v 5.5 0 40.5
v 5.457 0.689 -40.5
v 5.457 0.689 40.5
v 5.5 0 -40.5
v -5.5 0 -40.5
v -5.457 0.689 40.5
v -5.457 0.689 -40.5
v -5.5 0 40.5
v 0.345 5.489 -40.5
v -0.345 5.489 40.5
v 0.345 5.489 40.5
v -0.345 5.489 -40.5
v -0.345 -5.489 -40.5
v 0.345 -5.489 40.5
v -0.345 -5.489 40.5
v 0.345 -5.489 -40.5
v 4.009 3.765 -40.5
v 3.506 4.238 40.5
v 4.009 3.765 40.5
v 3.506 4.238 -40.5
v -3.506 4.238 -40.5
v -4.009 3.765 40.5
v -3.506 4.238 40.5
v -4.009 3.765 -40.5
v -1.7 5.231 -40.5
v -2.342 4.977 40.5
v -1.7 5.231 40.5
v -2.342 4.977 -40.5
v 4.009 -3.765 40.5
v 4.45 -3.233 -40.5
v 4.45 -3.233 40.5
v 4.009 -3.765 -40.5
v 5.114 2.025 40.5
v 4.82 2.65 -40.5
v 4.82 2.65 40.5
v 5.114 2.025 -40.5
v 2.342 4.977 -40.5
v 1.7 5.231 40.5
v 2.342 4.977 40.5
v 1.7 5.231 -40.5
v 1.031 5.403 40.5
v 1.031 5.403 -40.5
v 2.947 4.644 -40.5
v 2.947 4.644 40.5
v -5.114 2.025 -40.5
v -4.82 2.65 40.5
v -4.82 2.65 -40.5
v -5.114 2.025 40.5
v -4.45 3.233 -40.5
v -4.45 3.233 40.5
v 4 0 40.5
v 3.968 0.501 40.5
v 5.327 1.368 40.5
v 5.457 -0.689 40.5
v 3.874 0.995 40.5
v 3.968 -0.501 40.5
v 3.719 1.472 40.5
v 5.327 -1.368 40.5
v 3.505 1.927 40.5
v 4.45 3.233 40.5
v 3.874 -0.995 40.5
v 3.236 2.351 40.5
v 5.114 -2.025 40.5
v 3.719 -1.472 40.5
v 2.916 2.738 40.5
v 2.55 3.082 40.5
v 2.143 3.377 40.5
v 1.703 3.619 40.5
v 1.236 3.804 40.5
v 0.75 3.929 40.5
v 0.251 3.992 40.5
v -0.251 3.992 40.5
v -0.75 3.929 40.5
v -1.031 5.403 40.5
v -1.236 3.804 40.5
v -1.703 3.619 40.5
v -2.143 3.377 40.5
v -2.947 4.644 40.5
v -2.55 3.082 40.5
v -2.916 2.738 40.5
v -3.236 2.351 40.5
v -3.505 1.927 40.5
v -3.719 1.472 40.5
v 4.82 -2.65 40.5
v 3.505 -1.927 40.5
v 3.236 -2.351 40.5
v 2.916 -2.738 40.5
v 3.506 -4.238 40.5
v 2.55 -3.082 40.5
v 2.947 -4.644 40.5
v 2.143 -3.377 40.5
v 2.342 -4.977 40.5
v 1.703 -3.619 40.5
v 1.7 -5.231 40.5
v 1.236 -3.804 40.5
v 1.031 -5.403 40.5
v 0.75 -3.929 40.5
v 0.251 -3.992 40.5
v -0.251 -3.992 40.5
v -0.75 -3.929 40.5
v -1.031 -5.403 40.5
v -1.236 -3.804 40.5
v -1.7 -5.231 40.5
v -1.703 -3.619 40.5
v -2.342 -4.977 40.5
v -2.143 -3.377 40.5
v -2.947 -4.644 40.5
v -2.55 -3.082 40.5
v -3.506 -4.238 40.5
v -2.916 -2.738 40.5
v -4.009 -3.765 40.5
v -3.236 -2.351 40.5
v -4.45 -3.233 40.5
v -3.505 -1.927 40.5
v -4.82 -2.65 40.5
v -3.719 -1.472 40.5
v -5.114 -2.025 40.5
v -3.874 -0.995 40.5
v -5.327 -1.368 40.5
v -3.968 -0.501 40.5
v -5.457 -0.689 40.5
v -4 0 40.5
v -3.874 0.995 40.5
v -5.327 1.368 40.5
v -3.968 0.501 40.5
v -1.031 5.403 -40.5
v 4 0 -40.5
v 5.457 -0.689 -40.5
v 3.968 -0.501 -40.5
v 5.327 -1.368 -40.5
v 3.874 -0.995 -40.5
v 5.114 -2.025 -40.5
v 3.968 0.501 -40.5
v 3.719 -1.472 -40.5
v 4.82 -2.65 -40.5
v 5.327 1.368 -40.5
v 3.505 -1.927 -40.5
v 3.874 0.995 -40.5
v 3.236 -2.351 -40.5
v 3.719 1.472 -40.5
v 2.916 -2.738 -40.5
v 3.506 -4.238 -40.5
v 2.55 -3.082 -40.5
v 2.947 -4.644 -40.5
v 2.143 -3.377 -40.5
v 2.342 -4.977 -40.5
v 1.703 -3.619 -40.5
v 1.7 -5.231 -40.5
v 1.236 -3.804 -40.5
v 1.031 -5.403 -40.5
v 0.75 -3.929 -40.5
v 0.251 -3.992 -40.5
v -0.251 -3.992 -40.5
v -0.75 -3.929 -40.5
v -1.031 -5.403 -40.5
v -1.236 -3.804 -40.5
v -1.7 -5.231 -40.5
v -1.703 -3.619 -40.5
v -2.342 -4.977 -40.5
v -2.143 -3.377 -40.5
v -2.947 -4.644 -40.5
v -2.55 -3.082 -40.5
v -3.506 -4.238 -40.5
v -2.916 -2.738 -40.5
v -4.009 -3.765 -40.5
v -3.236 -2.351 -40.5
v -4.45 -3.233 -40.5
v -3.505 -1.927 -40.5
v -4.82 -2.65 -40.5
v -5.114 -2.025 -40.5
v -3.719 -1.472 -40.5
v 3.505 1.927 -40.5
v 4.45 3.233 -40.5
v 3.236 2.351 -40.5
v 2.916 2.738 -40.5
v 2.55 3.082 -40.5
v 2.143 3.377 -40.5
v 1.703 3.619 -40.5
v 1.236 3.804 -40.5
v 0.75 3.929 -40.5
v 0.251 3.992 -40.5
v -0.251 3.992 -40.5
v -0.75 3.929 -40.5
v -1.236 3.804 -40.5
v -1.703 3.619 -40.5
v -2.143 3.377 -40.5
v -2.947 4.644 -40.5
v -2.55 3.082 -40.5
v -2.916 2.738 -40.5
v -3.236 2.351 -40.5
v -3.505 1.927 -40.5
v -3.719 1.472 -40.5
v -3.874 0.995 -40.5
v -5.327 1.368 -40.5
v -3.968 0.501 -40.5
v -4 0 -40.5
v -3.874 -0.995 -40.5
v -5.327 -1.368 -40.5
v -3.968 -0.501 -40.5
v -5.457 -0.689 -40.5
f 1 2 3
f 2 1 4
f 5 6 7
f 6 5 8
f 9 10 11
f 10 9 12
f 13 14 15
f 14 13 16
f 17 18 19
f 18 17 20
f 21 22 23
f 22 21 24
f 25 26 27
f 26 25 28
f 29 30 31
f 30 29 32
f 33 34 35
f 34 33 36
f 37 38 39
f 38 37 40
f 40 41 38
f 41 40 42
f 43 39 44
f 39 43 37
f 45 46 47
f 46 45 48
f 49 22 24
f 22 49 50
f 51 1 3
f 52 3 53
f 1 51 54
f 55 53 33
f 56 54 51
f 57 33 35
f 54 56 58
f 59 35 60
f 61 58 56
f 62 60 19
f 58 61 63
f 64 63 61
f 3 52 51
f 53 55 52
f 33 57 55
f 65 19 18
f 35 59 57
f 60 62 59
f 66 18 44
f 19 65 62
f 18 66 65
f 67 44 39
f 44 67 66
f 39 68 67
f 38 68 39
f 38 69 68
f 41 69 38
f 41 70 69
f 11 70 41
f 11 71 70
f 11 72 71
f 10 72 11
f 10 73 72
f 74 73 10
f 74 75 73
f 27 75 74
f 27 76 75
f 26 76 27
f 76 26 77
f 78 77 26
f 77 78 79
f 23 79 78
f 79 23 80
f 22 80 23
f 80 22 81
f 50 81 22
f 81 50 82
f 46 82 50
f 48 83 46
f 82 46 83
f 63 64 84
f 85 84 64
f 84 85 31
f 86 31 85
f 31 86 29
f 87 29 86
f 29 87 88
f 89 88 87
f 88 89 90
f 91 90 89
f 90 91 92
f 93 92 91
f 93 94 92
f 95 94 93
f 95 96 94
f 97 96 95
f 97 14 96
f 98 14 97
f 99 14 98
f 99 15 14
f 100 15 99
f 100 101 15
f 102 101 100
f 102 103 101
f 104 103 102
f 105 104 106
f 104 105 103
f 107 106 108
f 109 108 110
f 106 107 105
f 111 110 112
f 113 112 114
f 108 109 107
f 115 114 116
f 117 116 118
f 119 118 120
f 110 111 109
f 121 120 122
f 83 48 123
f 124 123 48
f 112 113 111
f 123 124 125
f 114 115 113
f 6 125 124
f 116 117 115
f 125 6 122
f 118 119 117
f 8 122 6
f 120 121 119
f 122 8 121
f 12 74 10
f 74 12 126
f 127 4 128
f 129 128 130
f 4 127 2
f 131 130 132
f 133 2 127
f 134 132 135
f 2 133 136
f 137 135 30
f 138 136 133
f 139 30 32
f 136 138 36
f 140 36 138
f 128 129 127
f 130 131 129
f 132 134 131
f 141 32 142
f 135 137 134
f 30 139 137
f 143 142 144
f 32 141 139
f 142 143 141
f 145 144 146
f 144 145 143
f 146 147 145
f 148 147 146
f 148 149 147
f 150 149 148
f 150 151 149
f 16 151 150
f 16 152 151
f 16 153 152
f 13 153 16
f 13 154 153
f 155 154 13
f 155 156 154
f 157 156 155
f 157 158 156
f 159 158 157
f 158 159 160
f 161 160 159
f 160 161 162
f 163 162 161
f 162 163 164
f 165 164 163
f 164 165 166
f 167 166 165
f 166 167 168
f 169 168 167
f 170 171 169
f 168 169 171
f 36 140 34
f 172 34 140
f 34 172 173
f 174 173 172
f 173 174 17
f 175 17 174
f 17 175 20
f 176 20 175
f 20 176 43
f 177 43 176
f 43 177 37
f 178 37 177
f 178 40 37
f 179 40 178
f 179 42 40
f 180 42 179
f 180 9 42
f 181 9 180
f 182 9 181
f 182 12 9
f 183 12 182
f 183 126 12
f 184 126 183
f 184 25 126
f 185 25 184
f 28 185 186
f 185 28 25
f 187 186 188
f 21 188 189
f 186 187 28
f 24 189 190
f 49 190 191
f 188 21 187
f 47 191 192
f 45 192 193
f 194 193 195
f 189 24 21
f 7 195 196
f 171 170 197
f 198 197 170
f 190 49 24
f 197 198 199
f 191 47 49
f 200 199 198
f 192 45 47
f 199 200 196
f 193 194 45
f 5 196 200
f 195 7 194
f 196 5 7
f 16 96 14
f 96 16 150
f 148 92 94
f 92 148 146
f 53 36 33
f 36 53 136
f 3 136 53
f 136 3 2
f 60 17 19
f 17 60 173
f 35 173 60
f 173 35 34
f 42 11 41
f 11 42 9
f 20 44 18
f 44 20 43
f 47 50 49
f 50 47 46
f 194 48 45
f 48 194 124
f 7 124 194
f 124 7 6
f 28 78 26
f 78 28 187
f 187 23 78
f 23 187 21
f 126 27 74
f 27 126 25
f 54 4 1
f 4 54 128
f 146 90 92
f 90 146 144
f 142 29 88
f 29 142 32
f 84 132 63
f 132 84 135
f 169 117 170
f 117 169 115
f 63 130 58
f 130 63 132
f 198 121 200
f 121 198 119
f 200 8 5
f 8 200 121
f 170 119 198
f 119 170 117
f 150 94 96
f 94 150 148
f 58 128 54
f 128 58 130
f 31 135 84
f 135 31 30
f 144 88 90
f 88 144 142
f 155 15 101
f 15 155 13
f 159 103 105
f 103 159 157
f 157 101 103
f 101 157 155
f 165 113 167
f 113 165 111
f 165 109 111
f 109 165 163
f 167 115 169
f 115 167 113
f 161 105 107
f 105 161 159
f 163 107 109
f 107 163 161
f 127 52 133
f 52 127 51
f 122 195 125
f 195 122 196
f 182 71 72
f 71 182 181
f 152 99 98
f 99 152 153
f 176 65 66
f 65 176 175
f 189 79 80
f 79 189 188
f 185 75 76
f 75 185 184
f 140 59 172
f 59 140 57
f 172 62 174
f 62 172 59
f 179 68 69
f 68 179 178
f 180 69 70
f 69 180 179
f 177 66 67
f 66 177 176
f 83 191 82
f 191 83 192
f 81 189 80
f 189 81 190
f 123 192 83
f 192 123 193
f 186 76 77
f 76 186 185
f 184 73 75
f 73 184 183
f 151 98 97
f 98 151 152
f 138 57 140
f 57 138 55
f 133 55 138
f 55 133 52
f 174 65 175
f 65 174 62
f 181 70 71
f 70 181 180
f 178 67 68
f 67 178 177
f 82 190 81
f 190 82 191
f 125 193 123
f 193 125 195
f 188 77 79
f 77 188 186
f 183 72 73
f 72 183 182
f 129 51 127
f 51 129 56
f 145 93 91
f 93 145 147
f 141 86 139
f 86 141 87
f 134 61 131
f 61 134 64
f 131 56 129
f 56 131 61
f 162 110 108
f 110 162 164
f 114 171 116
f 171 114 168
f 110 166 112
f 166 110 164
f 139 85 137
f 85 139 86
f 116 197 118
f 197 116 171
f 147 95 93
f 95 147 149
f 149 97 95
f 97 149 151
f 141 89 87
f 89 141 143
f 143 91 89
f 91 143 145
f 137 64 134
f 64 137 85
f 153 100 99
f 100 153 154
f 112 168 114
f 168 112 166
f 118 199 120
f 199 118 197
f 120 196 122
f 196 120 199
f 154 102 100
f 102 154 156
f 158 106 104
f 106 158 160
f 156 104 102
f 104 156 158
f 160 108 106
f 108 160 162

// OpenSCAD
$fn = 50;


difference() {
	union() {
		translate(v = [0, 0, -40.5000000000]) {
			cylinder(h = 81, r = 5.5000000000);
		}
	}
	union() {
		translate(v = [0, 0, -100.0000000000]) {
			cylinder(h = 200, r = 4);
		}
	}
}
